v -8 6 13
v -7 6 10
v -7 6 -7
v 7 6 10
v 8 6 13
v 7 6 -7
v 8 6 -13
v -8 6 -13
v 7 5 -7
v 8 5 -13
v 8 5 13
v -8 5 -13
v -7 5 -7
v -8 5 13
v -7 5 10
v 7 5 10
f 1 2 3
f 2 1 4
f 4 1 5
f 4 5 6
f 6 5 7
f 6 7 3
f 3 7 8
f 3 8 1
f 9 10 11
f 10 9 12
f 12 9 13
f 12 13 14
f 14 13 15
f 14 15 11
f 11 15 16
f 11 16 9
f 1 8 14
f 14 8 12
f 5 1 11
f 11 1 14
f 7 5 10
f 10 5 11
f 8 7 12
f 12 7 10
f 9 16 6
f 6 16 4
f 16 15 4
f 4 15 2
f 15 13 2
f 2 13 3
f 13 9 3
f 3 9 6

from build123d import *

# Parameters (mm, degrees)
SKETCH_1_W          = 16
SKETCH_1_H          = 26
EXTRUDE_1_DEPTH     = 5
CUT_EXTRUDE_START   = 1
SKETCH_2_W          = 14
SKETCH_2_H          = 25
CUT_EXTRUDE_1_DEPTH = 10
EXTRUDE_START       = 5
SKETCH_3_W          = 16
SKETCH_3_H          = 26
EXTRUDE_3_DEPTH     = 1
CUT_EXTRUDE_START_2 = 6
SKETCH_4_W          = 14
SKETCH_4_H          = 17
CUT_EXTRUDE_2_DEPTH = 1
SKETCH_6_W          = 16
SKETCH_6_H          = 26
CUT_EXTRUDE_4_DEPTH = 5


with BuildPart() as part:
    # 스케치1 → 보스-돌출1 (new body)
    with BuildSketch(Plane(origin=(0, 0, 0), x_dir=(1, 0, 0), z_dir=(0, 1, 0))):
        Rectangle(SKETCH_1_W, SKETCH_1_H)
    extrude(amount=EXTRUDE_1_DEPTH)

    # 스케치2 → 컷-돌출1 (cut)
    with BuildSketch(Plane(origin=(0, 0, 0), x_dir=(1, 0, 0), z_dir=(0, 1, 0)).offset(CUT_EXTRUDE_START)):
        with Locations((0, 0.5)):
            Rectangle(SKETCH_2_W, SKETCH_2_H)
    extrude(amount=CUT_EXTRUDE_1_DEPTH, mode=Mode.SUBTRACT)

    # 스케치6 → 컷-돌출4 (cut)
    with BuildSketch(Plane.XZ):
        Rectangle(SKETCH_6_W, SKETCH_6_H)
    extrude(amount=-CUT_EXTRUDE_4_DEPTH, mode=Mode.SUBTRACT)


with BuildPart() as body_2:
    # 스케치3 → 보스-돌출3 (new body)
    with BuildSketch(Plane(origin=(0, 0, 0), x_dir=(1, 0, 0), z_dir=(0, 1, 0)).offset(EXTRUDE_START)):
        Rectangle(SKETCH_3_W, SKETCH_3_H)
    extrude(amount=EXTRUDE_3_DEPTH)

    # 스케치4 → 컷-돌출2 (cut)
    with BuildSketch(Plane(origin=(0, 0, 0), x_dir=(1, 0, 0), z_dir=(0, 1, 0)).offset(CUT_EXTRUDE_START_2)):
        with Locations((0, -1.5)):
            Rectangle(SKETCH_4_W, SKETCH_4_H)
    extrude(amount=-CUT_EXTRUDE_2_DEPTH, mode=Mode.SUBTRACT)


solid = body_2.part
